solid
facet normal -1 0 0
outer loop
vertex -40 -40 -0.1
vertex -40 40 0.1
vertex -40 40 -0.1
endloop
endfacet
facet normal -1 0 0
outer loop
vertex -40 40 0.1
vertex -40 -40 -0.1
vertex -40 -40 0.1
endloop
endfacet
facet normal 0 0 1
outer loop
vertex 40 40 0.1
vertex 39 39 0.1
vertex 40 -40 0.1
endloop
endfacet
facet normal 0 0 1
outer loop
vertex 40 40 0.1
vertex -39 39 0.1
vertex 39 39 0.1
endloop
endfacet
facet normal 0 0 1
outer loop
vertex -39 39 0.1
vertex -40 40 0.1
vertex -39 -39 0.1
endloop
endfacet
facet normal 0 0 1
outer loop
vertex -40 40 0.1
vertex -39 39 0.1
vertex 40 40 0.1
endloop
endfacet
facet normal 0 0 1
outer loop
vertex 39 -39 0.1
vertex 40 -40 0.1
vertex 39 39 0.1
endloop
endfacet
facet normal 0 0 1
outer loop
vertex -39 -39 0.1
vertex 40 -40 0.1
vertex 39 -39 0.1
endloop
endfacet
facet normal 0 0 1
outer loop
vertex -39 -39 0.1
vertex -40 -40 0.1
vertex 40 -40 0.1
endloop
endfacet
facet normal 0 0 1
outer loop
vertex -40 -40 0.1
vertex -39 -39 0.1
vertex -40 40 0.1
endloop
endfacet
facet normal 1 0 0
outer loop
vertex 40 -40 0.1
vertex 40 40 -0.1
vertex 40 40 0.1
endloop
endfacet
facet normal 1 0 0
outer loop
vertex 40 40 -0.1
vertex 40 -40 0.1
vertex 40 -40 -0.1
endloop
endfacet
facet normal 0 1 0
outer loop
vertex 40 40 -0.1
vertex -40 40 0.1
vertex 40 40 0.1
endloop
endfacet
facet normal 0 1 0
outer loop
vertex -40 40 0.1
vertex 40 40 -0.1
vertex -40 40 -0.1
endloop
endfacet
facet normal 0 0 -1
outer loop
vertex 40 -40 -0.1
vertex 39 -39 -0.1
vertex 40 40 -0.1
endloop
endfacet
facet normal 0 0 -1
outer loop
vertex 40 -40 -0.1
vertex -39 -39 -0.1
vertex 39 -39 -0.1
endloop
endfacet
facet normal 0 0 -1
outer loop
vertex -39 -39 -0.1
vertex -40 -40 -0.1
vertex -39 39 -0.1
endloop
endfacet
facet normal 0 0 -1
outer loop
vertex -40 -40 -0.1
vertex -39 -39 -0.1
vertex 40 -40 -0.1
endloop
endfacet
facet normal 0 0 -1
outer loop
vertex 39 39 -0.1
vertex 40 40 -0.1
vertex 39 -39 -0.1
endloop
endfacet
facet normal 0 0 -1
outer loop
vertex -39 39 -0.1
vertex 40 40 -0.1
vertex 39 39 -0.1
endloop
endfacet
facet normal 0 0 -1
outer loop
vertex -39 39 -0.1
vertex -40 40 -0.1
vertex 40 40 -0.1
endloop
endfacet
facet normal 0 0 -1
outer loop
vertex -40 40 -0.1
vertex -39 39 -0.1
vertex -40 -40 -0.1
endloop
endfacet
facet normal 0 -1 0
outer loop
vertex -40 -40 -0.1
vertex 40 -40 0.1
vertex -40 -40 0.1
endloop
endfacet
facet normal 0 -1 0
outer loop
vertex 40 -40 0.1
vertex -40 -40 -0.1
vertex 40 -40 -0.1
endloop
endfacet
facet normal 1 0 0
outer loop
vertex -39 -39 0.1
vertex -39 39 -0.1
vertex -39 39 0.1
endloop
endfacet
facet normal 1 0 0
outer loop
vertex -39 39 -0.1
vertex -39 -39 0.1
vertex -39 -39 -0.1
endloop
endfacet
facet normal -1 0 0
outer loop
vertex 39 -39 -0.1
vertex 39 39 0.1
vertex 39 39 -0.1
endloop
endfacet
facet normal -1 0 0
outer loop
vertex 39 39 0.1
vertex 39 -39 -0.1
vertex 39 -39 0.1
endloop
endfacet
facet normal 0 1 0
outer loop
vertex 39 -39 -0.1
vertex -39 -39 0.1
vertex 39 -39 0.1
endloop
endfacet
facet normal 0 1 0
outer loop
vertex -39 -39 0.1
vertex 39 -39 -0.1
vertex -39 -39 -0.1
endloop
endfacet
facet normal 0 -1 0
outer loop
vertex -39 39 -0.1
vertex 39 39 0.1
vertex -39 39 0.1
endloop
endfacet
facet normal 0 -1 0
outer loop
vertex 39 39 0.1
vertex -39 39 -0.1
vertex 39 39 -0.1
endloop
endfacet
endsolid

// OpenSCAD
// File to test the printer, i. e. the Z level, optimize the Z offset in slic3r afterward or the position of the inductif sensor
// a sheet of paper should be put between the needle and glass plate, no more, no less


difference(){
    cube([80,80,0.2],center=true);
    cube([78,78,0.3],center=true);
}
